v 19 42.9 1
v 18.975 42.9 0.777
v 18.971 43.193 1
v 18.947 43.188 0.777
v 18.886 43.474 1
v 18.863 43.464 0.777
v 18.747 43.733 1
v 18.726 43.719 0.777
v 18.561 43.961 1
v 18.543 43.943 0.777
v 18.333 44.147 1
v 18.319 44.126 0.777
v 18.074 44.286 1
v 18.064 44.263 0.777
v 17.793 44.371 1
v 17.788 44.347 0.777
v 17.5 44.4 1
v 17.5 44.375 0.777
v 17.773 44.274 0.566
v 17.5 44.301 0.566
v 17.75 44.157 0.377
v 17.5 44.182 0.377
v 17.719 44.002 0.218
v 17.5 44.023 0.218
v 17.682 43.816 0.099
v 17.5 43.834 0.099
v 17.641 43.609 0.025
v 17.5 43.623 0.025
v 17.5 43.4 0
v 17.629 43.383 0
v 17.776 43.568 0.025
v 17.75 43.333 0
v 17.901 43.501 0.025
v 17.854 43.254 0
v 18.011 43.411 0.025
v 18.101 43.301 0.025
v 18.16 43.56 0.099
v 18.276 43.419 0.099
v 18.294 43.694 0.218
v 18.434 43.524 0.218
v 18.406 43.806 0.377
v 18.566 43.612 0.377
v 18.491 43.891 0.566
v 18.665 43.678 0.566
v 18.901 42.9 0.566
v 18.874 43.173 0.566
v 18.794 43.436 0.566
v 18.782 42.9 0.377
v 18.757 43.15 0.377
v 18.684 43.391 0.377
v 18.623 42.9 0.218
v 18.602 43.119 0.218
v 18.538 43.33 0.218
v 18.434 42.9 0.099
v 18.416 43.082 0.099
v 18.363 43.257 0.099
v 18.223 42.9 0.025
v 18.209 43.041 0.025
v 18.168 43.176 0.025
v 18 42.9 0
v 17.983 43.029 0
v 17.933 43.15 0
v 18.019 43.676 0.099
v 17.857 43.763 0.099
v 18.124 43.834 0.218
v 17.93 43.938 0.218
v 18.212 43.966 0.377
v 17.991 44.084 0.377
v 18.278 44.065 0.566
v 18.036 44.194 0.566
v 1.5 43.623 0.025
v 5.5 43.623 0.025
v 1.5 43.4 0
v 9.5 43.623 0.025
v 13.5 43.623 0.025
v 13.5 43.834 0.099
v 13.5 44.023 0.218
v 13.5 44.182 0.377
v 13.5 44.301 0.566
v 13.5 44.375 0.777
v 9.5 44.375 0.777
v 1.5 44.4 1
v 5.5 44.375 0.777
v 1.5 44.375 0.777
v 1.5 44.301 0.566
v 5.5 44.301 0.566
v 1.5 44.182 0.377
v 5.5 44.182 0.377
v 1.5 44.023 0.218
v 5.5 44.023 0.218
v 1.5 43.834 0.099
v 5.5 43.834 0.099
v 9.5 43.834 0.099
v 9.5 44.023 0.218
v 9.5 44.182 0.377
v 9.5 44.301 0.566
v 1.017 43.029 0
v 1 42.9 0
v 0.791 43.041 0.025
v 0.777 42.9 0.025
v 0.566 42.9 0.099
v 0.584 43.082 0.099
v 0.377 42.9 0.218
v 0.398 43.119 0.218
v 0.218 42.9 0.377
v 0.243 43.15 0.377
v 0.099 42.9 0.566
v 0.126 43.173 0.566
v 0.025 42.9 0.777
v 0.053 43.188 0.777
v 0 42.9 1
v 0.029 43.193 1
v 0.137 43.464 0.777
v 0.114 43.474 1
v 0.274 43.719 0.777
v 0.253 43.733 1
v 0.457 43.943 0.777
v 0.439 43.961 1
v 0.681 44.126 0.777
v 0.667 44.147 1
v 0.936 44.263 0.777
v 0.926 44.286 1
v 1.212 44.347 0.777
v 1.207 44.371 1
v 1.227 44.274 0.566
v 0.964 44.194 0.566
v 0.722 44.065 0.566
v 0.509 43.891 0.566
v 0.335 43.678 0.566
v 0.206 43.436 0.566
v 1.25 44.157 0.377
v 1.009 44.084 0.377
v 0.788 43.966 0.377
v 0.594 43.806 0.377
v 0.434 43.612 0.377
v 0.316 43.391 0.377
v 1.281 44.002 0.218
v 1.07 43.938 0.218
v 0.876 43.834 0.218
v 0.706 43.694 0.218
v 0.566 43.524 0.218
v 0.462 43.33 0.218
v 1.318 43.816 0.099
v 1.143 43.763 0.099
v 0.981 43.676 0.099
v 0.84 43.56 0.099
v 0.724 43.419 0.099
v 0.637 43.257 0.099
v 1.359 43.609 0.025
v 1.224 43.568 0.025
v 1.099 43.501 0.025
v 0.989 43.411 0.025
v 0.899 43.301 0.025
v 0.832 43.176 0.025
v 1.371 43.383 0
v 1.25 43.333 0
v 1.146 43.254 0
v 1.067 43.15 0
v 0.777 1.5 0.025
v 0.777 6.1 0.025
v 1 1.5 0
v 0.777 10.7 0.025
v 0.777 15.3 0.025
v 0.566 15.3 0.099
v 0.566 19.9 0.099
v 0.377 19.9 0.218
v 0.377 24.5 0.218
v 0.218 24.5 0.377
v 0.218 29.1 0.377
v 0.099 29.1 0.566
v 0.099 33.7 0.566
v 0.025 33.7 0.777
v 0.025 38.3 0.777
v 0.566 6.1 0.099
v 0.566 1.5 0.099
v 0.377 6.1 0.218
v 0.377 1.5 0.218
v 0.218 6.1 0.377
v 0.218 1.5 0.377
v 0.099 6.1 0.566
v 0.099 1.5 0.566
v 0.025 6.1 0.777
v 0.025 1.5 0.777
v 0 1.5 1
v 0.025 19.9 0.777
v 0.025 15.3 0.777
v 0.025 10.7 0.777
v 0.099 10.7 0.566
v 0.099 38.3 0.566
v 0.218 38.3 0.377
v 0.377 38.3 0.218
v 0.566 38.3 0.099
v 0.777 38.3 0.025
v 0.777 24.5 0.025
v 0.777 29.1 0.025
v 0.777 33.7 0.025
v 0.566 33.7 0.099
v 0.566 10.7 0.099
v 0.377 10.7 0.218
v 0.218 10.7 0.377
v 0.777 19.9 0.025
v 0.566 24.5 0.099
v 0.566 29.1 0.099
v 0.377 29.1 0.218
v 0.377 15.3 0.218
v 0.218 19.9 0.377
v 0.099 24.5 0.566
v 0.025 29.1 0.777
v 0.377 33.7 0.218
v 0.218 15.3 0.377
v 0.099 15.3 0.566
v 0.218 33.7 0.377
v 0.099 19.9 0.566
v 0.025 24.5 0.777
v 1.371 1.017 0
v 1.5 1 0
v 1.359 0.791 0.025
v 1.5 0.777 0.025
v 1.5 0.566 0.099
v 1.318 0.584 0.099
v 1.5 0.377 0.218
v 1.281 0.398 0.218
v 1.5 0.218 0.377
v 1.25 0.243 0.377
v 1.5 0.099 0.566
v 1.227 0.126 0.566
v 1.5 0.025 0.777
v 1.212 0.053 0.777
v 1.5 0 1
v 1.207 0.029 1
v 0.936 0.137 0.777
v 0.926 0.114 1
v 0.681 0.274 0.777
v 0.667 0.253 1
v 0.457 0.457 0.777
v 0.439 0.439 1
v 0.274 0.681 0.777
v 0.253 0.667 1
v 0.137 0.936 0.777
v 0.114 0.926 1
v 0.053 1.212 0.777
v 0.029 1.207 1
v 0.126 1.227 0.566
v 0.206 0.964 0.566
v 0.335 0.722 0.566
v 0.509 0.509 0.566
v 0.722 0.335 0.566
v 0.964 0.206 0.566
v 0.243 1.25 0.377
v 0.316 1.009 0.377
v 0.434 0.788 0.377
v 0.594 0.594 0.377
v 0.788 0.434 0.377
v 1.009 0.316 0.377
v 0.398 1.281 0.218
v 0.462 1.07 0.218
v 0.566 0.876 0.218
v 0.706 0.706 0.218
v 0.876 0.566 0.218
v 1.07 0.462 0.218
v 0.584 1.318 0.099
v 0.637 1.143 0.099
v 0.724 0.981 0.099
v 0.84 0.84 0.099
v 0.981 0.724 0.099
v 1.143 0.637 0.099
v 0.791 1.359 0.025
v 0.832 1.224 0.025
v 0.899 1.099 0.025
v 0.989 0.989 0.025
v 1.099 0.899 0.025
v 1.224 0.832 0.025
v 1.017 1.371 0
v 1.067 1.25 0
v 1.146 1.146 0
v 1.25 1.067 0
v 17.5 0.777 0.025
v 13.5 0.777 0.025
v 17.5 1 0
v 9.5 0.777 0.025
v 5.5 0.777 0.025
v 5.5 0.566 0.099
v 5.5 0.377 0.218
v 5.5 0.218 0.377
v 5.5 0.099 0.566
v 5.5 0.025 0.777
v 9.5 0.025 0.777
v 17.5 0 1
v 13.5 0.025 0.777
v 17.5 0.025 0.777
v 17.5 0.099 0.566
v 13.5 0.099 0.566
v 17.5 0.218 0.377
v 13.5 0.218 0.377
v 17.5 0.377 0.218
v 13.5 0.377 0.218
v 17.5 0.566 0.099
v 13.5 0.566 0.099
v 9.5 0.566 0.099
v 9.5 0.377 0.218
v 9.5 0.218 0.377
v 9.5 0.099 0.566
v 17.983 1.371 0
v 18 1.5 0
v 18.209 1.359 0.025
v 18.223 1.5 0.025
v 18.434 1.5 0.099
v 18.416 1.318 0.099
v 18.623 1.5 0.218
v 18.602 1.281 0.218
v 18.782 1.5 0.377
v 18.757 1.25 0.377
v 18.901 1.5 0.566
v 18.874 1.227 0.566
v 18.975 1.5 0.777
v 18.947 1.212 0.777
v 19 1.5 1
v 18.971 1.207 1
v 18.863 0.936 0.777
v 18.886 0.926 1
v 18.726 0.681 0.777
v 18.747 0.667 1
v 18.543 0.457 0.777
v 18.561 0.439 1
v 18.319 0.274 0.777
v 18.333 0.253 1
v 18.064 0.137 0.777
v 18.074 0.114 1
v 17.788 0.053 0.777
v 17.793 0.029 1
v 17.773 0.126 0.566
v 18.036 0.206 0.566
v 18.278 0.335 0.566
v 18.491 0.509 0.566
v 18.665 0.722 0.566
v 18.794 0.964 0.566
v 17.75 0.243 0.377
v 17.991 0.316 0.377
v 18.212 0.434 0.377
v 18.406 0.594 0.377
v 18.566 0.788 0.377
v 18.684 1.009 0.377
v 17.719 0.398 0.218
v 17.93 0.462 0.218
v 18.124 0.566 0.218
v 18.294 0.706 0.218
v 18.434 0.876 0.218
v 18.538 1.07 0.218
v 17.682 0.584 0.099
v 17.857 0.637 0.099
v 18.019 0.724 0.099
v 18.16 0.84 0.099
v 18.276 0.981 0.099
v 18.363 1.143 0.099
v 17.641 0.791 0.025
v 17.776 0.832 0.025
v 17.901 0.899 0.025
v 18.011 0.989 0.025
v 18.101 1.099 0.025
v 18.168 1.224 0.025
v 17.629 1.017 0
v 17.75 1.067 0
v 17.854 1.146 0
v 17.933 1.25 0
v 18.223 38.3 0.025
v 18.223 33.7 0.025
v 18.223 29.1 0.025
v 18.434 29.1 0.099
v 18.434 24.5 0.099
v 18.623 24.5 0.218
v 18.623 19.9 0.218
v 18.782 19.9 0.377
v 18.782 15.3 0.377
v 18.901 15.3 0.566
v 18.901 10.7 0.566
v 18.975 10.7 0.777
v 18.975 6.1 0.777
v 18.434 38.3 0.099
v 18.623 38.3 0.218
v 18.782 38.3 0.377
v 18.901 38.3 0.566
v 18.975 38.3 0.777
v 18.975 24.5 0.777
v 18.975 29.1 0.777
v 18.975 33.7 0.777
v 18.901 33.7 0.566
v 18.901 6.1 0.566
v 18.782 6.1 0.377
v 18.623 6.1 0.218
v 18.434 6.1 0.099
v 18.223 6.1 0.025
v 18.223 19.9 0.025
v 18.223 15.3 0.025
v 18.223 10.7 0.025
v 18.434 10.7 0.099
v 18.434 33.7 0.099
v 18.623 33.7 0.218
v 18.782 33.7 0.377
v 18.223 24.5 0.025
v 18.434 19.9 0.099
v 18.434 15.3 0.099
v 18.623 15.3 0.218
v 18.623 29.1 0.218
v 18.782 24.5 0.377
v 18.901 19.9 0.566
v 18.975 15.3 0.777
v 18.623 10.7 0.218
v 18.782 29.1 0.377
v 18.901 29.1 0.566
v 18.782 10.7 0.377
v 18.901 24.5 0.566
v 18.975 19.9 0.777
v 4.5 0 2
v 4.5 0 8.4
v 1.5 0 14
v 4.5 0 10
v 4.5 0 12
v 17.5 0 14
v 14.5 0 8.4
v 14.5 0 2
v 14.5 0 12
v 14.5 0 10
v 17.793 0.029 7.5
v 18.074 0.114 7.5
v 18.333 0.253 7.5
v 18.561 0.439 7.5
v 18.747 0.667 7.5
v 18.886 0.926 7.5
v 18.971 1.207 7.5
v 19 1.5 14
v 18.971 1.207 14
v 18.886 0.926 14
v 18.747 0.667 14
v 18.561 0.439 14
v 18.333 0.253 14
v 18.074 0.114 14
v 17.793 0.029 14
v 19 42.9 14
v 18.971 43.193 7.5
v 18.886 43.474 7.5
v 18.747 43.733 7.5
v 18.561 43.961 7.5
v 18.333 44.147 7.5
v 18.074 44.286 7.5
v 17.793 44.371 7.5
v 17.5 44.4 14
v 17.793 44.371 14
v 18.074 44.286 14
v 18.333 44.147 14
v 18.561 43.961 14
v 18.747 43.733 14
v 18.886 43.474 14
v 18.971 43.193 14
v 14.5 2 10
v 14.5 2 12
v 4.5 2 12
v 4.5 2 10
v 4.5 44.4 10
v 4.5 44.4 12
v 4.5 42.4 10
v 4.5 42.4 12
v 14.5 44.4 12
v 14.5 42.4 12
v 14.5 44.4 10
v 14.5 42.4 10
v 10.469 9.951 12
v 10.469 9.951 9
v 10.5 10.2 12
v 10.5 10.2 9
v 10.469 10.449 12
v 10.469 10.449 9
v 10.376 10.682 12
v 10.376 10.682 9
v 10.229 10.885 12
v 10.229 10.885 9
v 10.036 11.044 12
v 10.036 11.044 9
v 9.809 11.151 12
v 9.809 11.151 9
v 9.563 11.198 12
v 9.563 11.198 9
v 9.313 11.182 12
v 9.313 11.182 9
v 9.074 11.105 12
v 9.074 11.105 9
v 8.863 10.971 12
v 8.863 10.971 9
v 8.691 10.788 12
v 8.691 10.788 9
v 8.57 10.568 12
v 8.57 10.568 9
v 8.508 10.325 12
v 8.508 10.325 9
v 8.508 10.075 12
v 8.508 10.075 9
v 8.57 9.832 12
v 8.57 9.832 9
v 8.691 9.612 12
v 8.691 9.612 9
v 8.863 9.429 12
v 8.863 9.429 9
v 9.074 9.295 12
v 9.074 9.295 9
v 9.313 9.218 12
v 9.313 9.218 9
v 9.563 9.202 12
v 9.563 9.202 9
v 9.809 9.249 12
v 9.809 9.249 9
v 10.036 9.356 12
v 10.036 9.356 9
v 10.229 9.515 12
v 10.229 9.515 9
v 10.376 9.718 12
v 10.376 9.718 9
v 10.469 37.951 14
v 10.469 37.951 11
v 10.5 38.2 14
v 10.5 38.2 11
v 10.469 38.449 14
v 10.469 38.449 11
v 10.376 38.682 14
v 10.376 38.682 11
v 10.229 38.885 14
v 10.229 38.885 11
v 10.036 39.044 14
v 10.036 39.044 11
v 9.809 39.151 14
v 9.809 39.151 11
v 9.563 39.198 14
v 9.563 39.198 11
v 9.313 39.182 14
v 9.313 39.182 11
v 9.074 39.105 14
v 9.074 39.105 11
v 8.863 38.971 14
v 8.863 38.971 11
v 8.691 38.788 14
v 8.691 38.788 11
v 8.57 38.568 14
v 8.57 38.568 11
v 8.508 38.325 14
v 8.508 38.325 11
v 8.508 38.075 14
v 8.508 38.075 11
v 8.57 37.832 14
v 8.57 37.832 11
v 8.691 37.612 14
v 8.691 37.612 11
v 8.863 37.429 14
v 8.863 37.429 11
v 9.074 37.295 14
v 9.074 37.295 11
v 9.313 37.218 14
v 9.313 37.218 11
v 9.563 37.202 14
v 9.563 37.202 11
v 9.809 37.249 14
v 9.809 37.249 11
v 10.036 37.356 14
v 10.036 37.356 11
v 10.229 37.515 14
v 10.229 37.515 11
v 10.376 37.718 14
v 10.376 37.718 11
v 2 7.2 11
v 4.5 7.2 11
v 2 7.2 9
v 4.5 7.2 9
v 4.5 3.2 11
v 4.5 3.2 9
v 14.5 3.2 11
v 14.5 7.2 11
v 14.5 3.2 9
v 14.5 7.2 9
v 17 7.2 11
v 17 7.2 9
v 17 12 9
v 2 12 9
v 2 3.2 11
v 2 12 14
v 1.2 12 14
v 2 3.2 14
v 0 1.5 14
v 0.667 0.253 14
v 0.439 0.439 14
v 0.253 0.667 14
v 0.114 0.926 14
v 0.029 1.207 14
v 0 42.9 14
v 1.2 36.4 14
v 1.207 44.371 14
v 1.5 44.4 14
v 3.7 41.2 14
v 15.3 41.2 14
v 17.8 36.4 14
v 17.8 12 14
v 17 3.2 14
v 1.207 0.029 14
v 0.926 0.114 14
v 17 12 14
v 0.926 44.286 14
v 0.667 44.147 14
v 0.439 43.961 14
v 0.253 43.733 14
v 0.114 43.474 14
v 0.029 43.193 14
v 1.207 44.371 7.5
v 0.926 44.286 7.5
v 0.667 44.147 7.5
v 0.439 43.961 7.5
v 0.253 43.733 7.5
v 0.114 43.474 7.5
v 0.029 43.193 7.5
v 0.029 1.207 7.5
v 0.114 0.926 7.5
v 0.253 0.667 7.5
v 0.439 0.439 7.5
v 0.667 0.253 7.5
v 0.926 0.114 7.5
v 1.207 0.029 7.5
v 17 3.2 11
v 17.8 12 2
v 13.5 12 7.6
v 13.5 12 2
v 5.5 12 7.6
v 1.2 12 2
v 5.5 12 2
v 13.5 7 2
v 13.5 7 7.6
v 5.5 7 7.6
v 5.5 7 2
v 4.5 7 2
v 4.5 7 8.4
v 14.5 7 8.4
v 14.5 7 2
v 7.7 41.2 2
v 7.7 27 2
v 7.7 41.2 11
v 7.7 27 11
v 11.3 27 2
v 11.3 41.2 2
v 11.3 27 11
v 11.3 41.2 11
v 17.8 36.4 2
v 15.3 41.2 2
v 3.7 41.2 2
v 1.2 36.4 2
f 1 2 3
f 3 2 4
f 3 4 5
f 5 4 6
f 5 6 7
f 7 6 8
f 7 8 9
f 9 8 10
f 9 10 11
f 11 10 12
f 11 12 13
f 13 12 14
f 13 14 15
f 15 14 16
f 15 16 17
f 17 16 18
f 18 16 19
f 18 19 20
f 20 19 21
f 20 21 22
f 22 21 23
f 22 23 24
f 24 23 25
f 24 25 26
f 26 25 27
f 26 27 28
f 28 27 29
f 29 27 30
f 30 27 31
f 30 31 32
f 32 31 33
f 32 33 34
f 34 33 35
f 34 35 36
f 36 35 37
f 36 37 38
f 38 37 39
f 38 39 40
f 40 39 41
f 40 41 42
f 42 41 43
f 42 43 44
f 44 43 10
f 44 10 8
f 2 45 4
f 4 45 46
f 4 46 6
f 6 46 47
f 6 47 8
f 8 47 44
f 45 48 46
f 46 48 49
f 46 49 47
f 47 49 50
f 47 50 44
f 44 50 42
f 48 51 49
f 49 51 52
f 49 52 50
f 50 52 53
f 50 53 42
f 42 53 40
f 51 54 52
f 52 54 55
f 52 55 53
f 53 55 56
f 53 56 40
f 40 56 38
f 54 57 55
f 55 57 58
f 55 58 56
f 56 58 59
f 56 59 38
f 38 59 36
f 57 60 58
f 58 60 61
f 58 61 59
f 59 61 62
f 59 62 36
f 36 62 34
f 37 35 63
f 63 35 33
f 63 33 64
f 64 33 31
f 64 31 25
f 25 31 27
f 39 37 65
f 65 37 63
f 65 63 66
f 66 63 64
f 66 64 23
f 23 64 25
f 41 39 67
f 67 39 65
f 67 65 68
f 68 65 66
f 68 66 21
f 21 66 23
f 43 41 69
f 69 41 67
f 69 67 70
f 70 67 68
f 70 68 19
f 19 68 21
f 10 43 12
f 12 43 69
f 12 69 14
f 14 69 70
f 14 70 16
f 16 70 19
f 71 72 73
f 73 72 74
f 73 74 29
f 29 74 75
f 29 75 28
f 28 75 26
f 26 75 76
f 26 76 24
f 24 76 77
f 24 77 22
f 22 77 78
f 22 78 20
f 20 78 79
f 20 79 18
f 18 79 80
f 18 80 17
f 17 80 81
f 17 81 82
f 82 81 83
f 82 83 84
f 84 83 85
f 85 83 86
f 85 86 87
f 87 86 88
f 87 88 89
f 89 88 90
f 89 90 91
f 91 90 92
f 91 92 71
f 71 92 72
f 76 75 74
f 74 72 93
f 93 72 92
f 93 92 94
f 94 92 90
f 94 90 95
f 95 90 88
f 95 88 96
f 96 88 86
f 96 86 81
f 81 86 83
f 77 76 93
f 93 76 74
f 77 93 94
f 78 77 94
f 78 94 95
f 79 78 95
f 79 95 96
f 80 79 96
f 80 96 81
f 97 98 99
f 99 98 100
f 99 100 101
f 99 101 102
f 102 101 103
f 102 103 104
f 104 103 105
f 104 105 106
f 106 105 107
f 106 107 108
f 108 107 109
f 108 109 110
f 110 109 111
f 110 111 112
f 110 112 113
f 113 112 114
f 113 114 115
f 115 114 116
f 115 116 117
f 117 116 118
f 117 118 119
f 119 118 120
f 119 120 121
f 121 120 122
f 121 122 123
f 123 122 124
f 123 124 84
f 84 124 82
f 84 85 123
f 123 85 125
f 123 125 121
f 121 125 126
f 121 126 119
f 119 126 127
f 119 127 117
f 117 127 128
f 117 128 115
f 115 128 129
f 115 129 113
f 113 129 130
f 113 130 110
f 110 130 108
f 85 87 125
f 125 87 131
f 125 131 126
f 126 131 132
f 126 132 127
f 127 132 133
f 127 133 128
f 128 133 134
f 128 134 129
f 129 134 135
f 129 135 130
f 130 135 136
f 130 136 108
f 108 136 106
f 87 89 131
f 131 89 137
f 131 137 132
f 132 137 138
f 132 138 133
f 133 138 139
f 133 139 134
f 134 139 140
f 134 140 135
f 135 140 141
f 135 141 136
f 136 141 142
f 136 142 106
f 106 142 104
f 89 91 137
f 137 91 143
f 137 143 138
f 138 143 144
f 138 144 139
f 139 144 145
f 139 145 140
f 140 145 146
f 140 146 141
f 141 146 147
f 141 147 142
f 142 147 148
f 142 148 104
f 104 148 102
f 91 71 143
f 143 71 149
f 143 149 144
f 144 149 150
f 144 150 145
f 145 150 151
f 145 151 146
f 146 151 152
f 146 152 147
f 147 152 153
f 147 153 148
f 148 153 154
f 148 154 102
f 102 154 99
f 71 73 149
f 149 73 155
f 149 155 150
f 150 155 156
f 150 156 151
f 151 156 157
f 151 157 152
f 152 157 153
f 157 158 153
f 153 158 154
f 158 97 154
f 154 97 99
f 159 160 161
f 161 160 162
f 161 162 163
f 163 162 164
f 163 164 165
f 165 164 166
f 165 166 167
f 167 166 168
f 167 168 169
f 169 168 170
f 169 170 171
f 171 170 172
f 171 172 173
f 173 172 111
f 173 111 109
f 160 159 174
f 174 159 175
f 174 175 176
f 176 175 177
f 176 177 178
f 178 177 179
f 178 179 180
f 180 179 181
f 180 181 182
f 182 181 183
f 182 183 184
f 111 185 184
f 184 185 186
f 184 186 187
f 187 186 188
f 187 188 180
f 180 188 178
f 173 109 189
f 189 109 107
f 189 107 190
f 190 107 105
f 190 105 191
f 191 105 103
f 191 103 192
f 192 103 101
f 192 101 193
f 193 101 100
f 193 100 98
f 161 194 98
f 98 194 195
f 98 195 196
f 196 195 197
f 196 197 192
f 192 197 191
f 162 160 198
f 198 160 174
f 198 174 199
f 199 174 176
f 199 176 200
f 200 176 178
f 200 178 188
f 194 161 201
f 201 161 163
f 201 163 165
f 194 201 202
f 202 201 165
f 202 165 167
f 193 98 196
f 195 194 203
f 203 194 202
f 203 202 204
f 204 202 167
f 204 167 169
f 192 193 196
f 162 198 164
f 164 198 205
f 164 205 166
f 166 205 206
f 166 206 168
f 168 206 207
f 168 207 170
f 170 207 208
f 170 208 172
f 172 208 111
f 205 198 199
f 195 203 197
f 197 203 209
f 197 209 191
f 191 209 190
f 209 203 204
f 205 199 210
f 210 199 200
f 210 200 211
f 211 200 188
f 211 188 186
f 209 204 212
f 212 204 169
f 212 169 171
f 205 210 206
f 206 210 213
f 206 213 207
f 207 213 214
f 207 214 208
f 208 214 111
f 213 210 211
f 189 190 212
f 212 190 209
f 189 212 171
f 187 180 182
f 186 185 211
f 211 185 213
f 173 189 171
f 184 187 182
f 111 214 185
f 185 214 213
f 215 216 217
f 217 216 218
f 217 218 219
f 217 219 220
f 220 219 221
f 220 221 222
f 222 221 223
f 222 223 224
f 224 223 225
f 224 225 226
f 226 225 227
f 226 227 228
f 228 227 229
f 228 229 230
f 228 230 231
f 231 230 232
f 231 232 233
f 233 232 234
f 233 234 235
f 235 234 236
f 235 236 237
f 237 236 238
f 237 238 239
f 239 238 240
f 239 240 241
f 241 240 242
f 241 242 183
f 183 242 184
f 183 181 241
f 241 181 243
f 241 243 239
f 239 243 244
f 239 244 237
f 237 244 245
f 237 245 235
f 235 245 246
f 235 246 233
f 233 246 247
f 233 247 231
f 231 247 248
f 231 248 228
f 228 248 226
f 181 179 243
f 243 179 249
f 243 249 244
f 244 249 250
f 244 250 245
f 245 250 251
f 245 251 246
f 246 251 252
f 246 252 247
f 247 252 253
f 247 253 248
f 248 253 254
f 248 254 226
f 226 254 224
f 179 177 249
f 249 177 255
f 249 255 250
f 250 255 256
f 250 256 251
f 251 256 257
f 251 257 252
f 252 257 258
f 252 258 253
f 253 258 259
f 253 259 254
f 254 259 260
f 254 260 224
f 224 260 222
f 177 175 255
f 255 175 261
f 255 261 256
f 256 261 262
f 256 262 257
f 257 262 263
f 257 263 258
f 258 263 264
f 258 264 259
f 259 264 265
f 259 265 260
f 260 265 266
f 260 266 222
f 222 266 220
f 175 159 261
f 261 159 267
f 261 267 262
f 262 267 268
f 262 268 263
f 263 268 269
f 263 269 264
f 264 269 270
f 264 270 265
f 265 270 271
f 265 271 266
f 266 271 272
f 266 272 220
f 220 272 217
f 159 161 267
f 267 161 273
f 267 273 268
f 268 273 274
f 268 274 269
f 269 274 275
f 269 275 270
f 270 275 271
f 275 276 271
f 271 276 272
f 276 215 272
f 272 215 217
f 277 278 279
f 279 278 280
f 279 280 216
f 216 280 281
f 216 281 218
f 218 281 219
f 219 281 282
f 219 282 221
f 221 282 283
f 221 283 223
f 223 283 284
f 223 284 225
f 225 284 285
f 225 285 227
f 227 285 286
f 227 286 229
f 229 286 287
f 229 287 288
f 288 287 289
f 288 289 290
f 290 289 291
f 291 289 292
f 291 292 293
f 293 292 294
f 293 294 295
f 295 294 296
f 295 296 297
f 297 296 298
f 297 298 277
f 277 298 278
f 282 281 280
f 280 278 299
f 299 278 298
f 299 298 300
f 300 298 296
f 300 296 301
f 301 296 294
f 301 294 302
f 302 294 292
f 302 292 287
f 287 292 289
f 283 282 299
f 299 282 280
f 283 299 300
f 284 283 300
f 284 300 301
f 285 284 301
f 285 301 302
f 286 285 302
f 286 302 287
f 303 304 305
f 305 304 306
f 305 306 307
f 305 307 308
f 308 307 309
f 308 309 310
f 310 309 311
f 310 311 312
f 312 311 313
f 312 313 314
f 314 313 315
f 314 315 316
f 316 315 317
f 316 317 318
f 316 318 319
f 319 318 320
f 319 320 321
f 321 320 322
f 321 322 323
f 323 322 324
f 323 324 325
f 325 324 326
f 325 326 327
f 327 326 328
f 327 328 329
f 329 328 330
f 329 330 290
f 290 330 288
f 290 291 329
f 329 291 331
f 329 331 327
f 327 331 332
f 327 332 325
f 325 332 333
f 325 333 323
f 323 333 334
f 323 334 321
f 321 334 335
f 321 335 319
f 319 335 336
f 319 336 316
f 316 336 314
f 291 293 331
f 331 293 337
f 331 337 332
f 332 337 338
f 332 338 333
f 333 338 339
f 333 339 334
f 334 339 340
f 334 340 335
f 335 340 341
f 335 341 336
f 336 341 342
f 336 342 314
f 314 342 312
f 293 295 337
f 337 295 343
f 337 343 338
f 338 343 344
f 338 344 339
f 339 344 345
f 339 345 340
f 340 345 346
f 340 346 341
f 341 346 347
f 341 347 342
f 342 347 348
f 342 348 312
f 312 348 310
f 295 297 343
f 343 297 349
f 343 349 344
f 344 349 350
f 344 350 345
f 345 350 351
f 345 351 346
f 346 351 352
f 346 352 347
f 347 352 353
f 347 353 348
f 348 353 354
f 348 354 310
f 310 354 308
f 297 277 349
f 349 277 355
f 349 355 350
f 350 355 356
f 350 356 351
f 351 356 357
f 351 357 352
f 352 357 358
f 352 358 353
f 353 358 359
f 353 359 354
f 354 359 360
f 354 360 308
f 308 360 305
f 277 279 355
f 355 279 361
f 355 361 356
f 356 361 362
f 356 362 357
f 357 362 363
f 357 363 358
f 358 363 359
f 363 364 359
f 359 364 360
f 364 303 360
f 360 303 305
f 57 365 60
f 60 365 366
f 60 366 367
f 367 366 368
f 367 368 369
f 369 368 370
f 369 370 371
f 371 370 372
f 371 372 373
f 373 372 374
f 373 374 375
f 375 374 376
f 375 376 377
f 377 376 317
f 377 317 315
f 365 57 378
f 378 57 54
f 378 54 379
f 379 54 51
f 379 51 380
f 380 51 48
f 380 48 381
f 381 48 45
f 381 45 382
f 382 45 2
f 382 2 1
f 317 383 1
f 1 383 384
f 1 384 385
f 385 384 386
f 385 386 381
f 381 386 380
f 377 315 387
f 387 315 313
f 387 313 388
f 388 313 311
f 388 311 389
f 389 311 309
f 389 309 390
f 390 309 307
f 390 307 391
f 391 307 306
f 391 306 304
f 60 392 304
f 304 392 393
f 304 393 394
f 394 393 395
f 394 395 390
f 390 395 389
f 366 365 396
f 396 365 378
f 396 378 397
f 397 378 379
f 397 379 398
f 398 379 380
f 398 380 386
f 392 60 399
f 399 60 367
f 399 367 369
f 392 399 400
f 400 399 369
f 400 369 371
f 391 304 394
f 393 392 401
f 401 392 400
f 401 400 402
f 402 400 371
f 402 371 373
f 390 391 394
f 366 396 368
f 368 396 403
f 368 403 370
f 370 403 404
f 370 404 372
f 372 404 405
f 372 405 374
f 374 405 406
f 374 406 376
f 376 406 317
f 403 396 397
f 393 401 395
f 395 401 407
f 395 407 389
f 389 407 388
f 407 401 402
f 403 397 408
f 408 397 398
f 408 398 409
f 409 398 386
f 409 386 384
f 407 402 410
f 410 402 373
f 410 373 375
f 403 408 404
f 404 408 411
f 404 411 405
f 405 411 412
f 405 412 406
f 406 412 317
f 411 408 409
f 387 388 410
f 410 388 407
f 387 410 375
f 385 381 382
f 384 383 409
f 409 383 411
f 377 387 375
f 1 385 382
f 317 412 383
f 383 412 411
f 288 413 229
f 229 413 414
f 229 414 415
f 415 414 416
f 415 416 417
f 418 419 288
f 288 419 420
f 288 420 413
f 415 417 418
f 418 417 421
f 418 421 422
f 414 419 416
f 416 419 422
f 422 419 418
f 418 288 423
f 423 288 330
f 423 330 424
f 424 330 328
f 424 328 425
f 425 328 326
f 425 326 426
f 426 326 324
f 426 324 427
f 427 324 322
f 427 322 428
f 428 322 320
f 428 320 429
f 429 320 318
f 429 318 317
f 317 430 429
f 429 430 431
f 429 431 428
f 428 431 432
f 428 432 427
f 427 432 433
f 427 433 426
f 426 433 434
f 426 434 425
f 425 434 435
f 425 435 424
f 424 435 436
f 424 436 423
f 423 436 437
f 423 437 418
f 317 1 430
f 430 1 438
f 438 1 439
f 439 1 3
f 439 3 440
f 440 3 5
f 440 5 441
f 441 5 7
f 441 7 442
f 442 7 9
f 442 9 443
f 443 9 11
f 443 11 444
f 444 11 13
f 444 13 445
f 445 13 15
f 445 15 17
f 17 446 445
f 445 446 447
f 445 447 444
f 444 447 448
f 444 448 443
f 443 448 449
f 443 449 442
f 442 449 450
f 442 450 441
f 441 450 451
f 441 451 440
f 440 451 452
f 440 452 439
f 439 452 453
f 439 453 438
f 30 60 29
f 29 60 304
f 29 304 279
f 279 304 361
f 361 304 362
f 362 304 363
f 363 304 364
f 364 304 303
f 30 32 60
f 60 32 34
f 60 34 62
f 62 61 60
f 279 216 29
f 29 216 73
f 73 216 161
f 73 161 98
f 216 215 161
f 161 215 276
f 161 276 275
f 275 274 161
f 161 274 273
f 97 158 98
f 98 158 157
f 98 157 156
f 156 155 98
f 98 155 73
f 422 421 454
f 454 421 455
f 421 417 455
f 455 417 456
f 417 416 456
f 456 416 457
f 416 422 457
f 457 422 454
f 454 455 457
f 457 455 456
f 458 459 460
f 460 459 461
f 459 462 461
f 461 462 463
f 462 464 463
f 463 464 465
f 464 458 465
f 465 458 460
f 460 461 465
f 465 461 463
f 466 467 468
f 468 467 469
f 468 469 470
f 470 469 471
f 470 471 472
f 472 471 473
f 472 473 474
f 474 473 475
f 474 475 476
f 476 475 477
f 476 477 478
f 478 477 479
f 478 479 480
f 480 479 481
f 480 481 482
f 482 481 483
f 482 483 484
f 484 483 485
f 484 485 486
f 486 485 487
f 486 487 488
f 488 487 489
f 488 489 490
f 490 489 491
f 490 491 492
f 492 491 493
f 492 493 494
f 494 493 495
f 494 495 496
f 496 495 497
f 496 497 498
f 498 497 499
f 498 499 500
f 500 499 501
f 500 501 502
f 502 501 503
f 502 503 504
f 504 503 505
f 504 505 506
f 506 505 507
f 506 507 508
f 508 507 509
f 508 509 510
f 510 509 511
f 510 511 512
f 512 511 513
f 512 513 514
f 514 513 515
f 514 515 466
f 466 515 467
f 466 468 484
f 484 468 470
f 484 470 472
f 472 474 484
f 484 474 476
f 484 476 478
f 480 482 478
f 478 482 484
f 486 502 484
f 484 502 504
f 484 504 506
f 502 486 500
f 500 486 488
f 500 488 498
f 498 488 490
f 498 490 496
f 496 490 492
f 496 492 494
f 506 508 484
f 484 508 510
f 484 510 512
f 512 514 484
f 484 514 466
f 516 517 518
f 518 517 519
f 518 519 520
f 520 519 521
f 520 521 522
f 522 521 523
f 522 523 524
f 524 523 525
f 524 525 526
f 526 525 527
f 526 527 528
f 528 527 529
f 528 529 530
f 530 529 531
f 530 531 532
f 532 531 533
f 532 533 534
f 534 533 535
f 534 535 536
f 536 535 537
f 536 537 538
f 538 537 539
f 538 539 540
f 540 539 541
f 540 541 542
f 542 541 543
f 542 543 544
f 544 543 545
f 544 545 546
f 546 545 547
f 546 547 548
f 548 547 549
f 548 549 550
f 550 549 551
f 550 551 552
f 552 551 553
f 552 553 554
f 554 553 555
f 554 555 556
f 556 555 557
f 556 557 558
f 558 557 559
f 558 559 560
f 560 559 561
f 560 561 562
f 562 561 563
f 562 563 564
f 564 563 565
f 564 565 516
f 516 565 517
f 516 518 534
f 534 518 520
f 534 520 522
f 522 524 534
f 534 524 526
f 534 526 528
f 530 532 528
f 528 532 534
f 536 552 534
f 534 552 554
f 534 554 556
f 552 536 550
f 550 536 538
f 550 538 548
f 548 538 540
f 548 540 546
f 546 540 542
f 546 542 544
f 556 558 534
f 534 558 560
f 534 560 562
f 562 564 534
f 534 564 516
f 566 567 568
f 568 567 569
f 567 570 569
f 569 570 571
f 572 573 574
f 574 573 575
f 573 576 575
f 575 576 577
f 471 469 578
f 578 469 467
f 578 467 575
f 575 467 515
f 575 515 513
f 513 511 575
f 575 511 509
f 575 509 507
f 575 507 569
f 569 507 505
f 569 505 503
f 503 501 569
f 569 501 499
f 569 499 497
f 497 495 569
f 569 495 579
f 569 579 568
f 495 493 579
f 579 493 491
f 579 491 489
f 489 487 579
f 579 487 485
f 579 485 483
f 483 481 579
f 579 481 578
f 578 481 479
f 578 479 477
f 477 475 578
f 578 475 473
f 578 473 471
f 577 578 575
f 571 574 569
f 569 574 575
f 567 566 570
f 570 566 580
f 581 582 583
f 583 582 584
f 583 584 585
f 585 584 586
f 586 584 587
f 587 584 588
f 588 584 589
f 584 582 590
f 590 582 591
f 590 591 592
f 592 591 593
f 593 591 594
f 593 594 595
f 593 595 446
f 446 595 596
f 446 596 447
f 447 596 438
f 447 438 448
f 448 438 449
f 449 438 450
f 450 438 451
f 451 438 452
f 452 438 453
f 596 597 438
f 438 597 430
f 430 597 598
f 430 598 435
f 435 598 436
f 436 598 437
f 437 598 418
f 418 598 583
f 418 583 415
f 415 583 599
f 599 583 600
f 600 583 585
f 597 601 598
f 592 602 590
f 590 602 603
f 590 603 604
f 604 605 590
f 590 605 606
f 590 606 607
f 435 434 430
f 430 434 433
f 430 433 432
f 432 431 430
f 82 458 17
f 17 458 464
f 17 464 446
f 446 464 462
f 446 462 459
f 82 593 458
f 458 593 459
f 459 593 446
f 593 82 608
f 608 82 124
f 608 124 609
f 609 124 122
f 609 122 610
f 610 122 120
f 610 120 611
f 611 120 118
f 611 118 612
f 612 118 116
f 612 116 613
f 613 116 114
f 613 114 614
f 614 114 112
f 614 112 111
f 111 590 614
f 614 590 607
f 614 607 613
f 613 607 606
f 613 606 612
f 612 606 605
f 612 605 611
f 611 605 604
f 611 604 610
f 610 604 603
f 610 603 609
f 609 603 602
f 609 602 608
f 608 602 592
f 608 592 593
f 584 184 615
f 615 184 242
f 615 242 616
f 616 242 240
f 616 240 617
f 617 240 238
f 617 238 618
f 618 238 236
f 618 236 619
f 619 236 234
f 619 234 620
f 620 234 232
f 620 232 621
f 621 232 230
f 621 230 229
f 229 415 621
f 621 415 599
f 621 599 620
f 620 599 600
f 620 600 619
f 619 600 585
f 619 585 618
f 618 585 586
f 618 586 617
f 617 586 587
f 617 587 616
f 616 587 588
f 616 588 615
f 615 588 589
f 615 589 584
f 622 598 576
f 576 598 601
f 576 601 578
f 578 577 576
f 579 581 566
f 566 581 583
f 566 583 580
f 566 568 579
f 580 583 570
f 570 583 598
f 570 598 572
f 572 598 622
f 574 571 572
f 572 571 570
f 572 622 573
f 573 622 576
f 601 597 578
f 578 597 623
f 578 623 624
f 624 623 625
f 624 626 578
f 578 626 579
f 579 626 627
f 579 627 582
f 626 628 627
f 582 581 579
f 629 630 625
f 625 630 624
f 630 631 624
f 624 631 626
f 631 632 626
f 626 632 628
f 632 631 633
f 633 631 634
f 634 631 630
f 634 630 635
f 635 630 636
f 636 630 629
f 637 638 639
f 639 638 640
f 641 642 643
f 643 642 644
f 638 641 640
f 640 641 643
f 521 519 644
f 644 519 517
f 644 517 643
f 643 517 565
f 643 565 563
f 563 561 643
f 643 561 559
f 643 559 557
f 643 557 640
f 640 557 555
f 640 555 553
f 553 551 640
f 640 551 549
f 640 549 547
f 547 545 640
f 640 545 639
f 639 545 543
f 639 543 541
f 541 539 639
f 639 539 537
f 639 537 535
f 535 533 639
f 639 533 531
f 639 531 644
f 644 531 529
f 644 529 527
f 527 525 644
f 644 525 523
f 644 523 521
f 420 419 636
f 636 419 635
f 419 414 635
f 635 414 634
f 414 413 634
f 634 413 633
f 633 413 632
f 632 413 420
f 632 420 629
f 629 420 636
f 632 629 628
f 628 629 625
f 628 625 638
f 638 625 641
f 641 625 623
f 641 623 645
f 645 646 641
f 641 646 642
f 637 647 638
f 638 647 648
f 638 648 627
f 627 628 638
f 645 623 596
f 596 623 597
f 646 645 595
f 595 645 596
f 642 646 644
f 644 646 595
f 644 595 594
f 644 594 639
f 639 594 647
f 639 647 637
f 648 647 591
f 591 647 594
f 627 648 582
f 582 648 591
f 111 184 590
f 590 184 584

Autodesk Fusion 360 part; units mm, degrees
sketch "base" plane through (0, 0, 0) normal (0, 0, 1) x (1, 0, 0)
  line L0 (0, 0) -> (19, 0)
  line L1 (19, 0) -> (19, 44.4)
  line L2 (19, 44.4) -> (0, 44.4)
  line L3 (0, 44.4) -> (0, 0)
  dimension "d1" = 19
  dimension "d2" = 44.4
extrude "Extrude1" add sketch "base" along normal blind 2
sketch "walls" plane through (0, 0, 2) normal (0, 0, 1) x (-1, 0, 0)
  line L0 (0, -44.4) -> (0, 0)
  line L1 (0, 0) -> (-19, 0)
  line L2 (-19, 0) -> (-19, -44.4)
  line L3 (-19, -44.4) -> (0, -44.4)
  line L4 (0, 0) -> (-19, 0)
  line L5 (-19, 0) -> (-19, -44.4)
  line L6 (-19, -44.4) -> (0, -44.4)
  line L7 (0, -44.4) -> (0, 0)
  line L8 (-1.2, -12) -> (-17.8, -12)
  line L9 (-17.8, -12) -> (-17.8, -36.4)
  line L10 (-15.3, -41.2) -> (-3.7, -41.2)
  line L11 (-1.2, -36.4) -> (-1.2, -12)
  line L12 (-1.2, -36.4) -> (-3.7, -41.2)
  line L13 (-17.8, -36.4) -> (-15.3, -41.2)
  dimension "d5" = 19
  dimension "d6" = 44.4
  dimension "d7" = 16.6
  dimension "d9" = 12
  dimension "d10" = 1.2
  dimension "d59" = 4.8
  dimension "d61" = 4.8
  dimension "d62" = 2.5
  dimension "d63" = 11.6
  dimension "d64" = 3.2
  dimension "d71" = 2.5
extrude "Extrude2" add sketch "walls" along normal blind 12
sketch "hole for connector" plane through (0, 0, 0) normal (0, -1, 0) x (1, 0, 0)
  line L0 (0, 0) -> (19, 0)
  line L1 (19, 0) -> (19, 14)
  line L2 (19, 14) -> (0, 14)
  line L3 (0, 14) -> (0, 0)
  line L4 (0, 14) -> (19, 14) construction
  line L5 (19, 14) -> (19, 2) construction
  line L6 (19, 2) -> (0, 2) construction
  line L7 (0, 2) -> (0, 14) construction
  line L8 (9.5, 14) -> (9.5, 0) construction
  line L9 (4.5, 8.4) -> (14.5, 8.4)
  line L10 (14.5, 8.4) -> (14.5, 2)
  line L11 (14.5, 2) -> (4.5, 2)
  line L12 (4.5, 2) -> (4.5, 8.4)
  dimension "d13" = 10
  dimension "d14" = 6.4
  dimension "d15" = 2
  dimension "d16" = 4.5
extrude "Extrude3" cut sketch "hole for connector" against normal blind 7 contours L9 L10 L11 L12
sketch "stand for rare of pcb" plane through (0, 0, 2) normal (0, 0, 1) x (-1, 0, 0)
  line L0 (-1.2, -12) -> (-17.8, -12)
  line L1 (-17.8, -12) -> (-17.8, -36.4)
  line L2 (-15.3, -41.2) -> (-3.7, -41.2)
  line L3 (-1.2, -36.4) -> (-1.2, -12)
  line L4 (-7.7, -41.2) -> (-11.3, -41.2)
  line L5 (-11.3, -41.2) -> (-11.3, -27)
  line L6 (-11.3, -27) -> (-7.7, -27)
  line L7 (-7.7, -27) -> (-7.7, -41.2)
  line L8 (-17.8, -12) -> (-1.2, -12)
  line L9 (-17.8, -36.4) -> (-15.3, -41.2)
  line L10 (-3.7, -41.2) -> (-1.2, -36.4)
  dimension "d27" = 3.6
  dimension "d28" = 15
  dimension "d29" = 6.5
extrude "Extrude5" add sketch "stand for rare of pcb" along normal blind 9 contours L2 L4 L5 L6 L7
sketch "hole for connector pins" plane through (0, 7, 0) normal (0, -1, 0) x (1, 0, 0)
  line L0 (4.5, 2) -> (14.5, 2)
  line L1 (14.5, 2) -> (14.5, 8.4)
  line L2 (14.5, 8.4) -> (4.5, 8.4)
  line L3 (4.5, 8.4) -> (4.5, 2)
  line L4 (5.5, 7.6) -> (13.5, 7.6)
  line L5 (13.5, 7.6) -> (13.5, 2)
  line L6 (13.5, 2) -> (5.5, 2)
  line L7 (5.5, 2) -> (5.5, 7.6)
  dimension "d32" = 8
  dimension "d33" = 5.6
  dimension "d34" = 5.5
  dimension "d35" = 2
extrude "Extrude6" cut sketch "hole for connector pins" against normal blind 5 contours L0 L4 L5 L6 L7
sketch "pit for pcb" plane through (0, 0, 14) normal (0, 0, 1) x (-1, 0, 0)
  line L0 (-1.2, -12) -> (-1.2, -36.4)
  line L1 (-3.7, -41.2) -> (-15.3, -41.2)
  line L2 (-17.8, -36.4) -> (-17.8, -12)
  line L3 (-17.8, -12) -> (-1.2, -12)
  line L4 (0, -44.4) -> (0, 0)
  line L5 (0, 0) -> (-19, 0)
  line L6 (-19, 0) -> (-19, -44.4)
  line L7 (-19, -44.4) -> (0, -44.4)
  line L8 (-2, -12) -> (-17, -12)
  line L9 (-17, -12) -> (-17, -3.2)
  line L10 (-17, -3.2) -> (-2, -3.2)
  line L11 (-2, -3.2) -> (-2, -12)
  line L12 (-1.2, -36.4) -> (-3.7, -41.2)
  line L13 (-15.3, -41.2) -> (-17.8, -36.4)
  dimension "d44" = 15
  dimension "d45" = 8.8
  dimension "d46" = 2
  dimension "d47" = 3.2
extrude "Extrude7" cut sketch "pit for pcb" against normal blind 3 contours L3 L8 L9 L10 L11
fillet "Fillet1" radius 1.5 4 edges at (19, 0, 7) (0, 0, 7) (0, 44.4, 7) (19, 44.4, 7)
sketch "pit for wires" plane through (0, 0, 11) normal (0, 0, 1) x (-1, 0, 0)
  line L0 (-2, -3.2) -> (-17, -3.2)
  line L1 (-17, -3.2) -> (-17, -12)
  line L2 (-2, -12) -> (-2, -3.2)
  line L3 (-4.5, -3.2) -> (-14.5, -3.2)
  line L4 (-14.5, -3.2) -> (-14.5, -7.2)
  line L5 (-4.5, -7.2) -> (-4.5, -3.2)
  line L6 (-2, -12) -> (-17, -12)
  line L7 (-17, -12) -> (-17, -7.2)
  line L8 (-2, -7.2) -> (-2, -12)
  line L9 (-17, -7.2) -> (-14.5, -7.2)
  line L10 (-4.5, -7.2) -> (-2, -7.2)
  line L11 (-17, -12) -> (-2, -12)
  dimension "d48" = 10
  dimension "d49" = 2.5
  dimension "d51" = 4
  dimension "d65" = 2.5
extrude "Extrude8" cut sketch "pit for wires" against normal blind 2 contours L0 L1 L2 L3 L4 L5 L6 L7 L8 L9 L10 L11
sketch "mount cylinder" plane through (0, 0, 11) normal (0, 0, 1) x (-1, 0, 0)
  line L0 (-7.7, -27) -> (-11.3, -27)
  line L1 (-11.3, -27) -> (-11.3, -41.2)
  line L2 (-11.3, -41.2) -> (-7.7, -41.2)
  line L3 (-7.7, -41.2) -> (-7.7, -27)
  circle A0 centre (-9.5, -38.2) radius 1
  line L4 (-17.8, -36.4) -> (-17.8, -12)
  dimension "d54" = 2
  dimension "d55" = 3
  dimension "d56" = 8.3
extrude "Extrude9" add sketch "mount cylinder" along normal blind 3 contours A0
sketch "mount cylinder 2" plane through (0, 0, 9) normal (0, 0, 1) x (-1, 0, 0)
  line L0 (-14.5, -3.2) -> (-14.5, -7.2)
  line L1 (-14.5, -7.2) -> (-17, -7.2)
  line L2 (-17, -7.2) -> (-17, -12)
  line L3 (-17, -12) -> (-2, -12)
  line L4 (-2, -12) -> (-2, -7.2)
  line L5 (-2, -7.2) -> (-4.5, -7.2)
  line L6 (-4.5, -7.2) -> (-4.5, -3.2)
  circle A0 centre (-9.5, -10.2) radius 1
  line L7 (-4.5, -3.2) -> (-14.5, -3.2)
  dimension "d66" = 2
  dimension "d68" = 7.5
  dimension "d72" = 7
extrude "Extrude10" add sketch "mount cylinder 2" along normal blind 3 contours A0
sketch "lock notch front" plane through (0, 0, 0) normal (0, -1, 0) x (1, 0, 0)
  line L0 (14.5, 8.4) -> (14.5, 2)
  line L1 (14.5, 2) -> (4.5, 2)
  line L2 (4.5, 2) -> (4.5, 8.4)
  line L3 (4.5, 8.4) -> (14.5, 8.4)
  line L4 (1.5, 14) -> (1.5, 0)
  line L5 (1.5, 0) -> (17.5, 0)
  line L6 (17.5, 0) -> (17.5, 14)
  line L7 (17.5, 14) -> (1.5, 14)
  line L8 (4.5, 12) -> (14.5, 12)
  line L9 (14.5, 12) -> (14.5, 10)
  line L10 (14.5, 10) -> (4.5, 10)
  line L11 (4.5, 10) -> (4.5, 12)
  dimension "d81" = 10
  dimension "d82" = 2
  dimension "d83" = 2
  dimension "d84" = 4.5
sketch "lock notch back" plane through (0, 44.4, 0) normal (0, 1, 0) x (-1, 0, 0)
  line L0 (-17.5, 14) -> (-17.5, 0)
  line L1 (-17.5, 0) -> (-1.5, 0)
  line L2 (-1.5, 0) -> (-1.5, 14)
  line L3 (-1.5, 14) -> (-17.5, 14)
  line L4 (-14.5, 12) -> (-4.5, 12)
  line L5 (-4.5, 12) -> (-4.5, 10)
  line L6 (-4.5, 10) -> (-14.5, 10)
  line L7 (-14.5, 10) -> (-14.5, 12)
  dimension "d85" = 10
  dimension "d86" = 2
  dimension "d87" = 2
  dimension "d88" = 4.5
extrude "Extrude12" cut sketch "lock notch back" against normal blind 2 contours L4 L5 L6 L7
extrude "Extrude13" cut sketch "lock notch front" against normal blind 2 contours L8 L9 L10 L11
fillet "Fillet2" radius 1 1 faces at (6.3333, 29.1, 0)
